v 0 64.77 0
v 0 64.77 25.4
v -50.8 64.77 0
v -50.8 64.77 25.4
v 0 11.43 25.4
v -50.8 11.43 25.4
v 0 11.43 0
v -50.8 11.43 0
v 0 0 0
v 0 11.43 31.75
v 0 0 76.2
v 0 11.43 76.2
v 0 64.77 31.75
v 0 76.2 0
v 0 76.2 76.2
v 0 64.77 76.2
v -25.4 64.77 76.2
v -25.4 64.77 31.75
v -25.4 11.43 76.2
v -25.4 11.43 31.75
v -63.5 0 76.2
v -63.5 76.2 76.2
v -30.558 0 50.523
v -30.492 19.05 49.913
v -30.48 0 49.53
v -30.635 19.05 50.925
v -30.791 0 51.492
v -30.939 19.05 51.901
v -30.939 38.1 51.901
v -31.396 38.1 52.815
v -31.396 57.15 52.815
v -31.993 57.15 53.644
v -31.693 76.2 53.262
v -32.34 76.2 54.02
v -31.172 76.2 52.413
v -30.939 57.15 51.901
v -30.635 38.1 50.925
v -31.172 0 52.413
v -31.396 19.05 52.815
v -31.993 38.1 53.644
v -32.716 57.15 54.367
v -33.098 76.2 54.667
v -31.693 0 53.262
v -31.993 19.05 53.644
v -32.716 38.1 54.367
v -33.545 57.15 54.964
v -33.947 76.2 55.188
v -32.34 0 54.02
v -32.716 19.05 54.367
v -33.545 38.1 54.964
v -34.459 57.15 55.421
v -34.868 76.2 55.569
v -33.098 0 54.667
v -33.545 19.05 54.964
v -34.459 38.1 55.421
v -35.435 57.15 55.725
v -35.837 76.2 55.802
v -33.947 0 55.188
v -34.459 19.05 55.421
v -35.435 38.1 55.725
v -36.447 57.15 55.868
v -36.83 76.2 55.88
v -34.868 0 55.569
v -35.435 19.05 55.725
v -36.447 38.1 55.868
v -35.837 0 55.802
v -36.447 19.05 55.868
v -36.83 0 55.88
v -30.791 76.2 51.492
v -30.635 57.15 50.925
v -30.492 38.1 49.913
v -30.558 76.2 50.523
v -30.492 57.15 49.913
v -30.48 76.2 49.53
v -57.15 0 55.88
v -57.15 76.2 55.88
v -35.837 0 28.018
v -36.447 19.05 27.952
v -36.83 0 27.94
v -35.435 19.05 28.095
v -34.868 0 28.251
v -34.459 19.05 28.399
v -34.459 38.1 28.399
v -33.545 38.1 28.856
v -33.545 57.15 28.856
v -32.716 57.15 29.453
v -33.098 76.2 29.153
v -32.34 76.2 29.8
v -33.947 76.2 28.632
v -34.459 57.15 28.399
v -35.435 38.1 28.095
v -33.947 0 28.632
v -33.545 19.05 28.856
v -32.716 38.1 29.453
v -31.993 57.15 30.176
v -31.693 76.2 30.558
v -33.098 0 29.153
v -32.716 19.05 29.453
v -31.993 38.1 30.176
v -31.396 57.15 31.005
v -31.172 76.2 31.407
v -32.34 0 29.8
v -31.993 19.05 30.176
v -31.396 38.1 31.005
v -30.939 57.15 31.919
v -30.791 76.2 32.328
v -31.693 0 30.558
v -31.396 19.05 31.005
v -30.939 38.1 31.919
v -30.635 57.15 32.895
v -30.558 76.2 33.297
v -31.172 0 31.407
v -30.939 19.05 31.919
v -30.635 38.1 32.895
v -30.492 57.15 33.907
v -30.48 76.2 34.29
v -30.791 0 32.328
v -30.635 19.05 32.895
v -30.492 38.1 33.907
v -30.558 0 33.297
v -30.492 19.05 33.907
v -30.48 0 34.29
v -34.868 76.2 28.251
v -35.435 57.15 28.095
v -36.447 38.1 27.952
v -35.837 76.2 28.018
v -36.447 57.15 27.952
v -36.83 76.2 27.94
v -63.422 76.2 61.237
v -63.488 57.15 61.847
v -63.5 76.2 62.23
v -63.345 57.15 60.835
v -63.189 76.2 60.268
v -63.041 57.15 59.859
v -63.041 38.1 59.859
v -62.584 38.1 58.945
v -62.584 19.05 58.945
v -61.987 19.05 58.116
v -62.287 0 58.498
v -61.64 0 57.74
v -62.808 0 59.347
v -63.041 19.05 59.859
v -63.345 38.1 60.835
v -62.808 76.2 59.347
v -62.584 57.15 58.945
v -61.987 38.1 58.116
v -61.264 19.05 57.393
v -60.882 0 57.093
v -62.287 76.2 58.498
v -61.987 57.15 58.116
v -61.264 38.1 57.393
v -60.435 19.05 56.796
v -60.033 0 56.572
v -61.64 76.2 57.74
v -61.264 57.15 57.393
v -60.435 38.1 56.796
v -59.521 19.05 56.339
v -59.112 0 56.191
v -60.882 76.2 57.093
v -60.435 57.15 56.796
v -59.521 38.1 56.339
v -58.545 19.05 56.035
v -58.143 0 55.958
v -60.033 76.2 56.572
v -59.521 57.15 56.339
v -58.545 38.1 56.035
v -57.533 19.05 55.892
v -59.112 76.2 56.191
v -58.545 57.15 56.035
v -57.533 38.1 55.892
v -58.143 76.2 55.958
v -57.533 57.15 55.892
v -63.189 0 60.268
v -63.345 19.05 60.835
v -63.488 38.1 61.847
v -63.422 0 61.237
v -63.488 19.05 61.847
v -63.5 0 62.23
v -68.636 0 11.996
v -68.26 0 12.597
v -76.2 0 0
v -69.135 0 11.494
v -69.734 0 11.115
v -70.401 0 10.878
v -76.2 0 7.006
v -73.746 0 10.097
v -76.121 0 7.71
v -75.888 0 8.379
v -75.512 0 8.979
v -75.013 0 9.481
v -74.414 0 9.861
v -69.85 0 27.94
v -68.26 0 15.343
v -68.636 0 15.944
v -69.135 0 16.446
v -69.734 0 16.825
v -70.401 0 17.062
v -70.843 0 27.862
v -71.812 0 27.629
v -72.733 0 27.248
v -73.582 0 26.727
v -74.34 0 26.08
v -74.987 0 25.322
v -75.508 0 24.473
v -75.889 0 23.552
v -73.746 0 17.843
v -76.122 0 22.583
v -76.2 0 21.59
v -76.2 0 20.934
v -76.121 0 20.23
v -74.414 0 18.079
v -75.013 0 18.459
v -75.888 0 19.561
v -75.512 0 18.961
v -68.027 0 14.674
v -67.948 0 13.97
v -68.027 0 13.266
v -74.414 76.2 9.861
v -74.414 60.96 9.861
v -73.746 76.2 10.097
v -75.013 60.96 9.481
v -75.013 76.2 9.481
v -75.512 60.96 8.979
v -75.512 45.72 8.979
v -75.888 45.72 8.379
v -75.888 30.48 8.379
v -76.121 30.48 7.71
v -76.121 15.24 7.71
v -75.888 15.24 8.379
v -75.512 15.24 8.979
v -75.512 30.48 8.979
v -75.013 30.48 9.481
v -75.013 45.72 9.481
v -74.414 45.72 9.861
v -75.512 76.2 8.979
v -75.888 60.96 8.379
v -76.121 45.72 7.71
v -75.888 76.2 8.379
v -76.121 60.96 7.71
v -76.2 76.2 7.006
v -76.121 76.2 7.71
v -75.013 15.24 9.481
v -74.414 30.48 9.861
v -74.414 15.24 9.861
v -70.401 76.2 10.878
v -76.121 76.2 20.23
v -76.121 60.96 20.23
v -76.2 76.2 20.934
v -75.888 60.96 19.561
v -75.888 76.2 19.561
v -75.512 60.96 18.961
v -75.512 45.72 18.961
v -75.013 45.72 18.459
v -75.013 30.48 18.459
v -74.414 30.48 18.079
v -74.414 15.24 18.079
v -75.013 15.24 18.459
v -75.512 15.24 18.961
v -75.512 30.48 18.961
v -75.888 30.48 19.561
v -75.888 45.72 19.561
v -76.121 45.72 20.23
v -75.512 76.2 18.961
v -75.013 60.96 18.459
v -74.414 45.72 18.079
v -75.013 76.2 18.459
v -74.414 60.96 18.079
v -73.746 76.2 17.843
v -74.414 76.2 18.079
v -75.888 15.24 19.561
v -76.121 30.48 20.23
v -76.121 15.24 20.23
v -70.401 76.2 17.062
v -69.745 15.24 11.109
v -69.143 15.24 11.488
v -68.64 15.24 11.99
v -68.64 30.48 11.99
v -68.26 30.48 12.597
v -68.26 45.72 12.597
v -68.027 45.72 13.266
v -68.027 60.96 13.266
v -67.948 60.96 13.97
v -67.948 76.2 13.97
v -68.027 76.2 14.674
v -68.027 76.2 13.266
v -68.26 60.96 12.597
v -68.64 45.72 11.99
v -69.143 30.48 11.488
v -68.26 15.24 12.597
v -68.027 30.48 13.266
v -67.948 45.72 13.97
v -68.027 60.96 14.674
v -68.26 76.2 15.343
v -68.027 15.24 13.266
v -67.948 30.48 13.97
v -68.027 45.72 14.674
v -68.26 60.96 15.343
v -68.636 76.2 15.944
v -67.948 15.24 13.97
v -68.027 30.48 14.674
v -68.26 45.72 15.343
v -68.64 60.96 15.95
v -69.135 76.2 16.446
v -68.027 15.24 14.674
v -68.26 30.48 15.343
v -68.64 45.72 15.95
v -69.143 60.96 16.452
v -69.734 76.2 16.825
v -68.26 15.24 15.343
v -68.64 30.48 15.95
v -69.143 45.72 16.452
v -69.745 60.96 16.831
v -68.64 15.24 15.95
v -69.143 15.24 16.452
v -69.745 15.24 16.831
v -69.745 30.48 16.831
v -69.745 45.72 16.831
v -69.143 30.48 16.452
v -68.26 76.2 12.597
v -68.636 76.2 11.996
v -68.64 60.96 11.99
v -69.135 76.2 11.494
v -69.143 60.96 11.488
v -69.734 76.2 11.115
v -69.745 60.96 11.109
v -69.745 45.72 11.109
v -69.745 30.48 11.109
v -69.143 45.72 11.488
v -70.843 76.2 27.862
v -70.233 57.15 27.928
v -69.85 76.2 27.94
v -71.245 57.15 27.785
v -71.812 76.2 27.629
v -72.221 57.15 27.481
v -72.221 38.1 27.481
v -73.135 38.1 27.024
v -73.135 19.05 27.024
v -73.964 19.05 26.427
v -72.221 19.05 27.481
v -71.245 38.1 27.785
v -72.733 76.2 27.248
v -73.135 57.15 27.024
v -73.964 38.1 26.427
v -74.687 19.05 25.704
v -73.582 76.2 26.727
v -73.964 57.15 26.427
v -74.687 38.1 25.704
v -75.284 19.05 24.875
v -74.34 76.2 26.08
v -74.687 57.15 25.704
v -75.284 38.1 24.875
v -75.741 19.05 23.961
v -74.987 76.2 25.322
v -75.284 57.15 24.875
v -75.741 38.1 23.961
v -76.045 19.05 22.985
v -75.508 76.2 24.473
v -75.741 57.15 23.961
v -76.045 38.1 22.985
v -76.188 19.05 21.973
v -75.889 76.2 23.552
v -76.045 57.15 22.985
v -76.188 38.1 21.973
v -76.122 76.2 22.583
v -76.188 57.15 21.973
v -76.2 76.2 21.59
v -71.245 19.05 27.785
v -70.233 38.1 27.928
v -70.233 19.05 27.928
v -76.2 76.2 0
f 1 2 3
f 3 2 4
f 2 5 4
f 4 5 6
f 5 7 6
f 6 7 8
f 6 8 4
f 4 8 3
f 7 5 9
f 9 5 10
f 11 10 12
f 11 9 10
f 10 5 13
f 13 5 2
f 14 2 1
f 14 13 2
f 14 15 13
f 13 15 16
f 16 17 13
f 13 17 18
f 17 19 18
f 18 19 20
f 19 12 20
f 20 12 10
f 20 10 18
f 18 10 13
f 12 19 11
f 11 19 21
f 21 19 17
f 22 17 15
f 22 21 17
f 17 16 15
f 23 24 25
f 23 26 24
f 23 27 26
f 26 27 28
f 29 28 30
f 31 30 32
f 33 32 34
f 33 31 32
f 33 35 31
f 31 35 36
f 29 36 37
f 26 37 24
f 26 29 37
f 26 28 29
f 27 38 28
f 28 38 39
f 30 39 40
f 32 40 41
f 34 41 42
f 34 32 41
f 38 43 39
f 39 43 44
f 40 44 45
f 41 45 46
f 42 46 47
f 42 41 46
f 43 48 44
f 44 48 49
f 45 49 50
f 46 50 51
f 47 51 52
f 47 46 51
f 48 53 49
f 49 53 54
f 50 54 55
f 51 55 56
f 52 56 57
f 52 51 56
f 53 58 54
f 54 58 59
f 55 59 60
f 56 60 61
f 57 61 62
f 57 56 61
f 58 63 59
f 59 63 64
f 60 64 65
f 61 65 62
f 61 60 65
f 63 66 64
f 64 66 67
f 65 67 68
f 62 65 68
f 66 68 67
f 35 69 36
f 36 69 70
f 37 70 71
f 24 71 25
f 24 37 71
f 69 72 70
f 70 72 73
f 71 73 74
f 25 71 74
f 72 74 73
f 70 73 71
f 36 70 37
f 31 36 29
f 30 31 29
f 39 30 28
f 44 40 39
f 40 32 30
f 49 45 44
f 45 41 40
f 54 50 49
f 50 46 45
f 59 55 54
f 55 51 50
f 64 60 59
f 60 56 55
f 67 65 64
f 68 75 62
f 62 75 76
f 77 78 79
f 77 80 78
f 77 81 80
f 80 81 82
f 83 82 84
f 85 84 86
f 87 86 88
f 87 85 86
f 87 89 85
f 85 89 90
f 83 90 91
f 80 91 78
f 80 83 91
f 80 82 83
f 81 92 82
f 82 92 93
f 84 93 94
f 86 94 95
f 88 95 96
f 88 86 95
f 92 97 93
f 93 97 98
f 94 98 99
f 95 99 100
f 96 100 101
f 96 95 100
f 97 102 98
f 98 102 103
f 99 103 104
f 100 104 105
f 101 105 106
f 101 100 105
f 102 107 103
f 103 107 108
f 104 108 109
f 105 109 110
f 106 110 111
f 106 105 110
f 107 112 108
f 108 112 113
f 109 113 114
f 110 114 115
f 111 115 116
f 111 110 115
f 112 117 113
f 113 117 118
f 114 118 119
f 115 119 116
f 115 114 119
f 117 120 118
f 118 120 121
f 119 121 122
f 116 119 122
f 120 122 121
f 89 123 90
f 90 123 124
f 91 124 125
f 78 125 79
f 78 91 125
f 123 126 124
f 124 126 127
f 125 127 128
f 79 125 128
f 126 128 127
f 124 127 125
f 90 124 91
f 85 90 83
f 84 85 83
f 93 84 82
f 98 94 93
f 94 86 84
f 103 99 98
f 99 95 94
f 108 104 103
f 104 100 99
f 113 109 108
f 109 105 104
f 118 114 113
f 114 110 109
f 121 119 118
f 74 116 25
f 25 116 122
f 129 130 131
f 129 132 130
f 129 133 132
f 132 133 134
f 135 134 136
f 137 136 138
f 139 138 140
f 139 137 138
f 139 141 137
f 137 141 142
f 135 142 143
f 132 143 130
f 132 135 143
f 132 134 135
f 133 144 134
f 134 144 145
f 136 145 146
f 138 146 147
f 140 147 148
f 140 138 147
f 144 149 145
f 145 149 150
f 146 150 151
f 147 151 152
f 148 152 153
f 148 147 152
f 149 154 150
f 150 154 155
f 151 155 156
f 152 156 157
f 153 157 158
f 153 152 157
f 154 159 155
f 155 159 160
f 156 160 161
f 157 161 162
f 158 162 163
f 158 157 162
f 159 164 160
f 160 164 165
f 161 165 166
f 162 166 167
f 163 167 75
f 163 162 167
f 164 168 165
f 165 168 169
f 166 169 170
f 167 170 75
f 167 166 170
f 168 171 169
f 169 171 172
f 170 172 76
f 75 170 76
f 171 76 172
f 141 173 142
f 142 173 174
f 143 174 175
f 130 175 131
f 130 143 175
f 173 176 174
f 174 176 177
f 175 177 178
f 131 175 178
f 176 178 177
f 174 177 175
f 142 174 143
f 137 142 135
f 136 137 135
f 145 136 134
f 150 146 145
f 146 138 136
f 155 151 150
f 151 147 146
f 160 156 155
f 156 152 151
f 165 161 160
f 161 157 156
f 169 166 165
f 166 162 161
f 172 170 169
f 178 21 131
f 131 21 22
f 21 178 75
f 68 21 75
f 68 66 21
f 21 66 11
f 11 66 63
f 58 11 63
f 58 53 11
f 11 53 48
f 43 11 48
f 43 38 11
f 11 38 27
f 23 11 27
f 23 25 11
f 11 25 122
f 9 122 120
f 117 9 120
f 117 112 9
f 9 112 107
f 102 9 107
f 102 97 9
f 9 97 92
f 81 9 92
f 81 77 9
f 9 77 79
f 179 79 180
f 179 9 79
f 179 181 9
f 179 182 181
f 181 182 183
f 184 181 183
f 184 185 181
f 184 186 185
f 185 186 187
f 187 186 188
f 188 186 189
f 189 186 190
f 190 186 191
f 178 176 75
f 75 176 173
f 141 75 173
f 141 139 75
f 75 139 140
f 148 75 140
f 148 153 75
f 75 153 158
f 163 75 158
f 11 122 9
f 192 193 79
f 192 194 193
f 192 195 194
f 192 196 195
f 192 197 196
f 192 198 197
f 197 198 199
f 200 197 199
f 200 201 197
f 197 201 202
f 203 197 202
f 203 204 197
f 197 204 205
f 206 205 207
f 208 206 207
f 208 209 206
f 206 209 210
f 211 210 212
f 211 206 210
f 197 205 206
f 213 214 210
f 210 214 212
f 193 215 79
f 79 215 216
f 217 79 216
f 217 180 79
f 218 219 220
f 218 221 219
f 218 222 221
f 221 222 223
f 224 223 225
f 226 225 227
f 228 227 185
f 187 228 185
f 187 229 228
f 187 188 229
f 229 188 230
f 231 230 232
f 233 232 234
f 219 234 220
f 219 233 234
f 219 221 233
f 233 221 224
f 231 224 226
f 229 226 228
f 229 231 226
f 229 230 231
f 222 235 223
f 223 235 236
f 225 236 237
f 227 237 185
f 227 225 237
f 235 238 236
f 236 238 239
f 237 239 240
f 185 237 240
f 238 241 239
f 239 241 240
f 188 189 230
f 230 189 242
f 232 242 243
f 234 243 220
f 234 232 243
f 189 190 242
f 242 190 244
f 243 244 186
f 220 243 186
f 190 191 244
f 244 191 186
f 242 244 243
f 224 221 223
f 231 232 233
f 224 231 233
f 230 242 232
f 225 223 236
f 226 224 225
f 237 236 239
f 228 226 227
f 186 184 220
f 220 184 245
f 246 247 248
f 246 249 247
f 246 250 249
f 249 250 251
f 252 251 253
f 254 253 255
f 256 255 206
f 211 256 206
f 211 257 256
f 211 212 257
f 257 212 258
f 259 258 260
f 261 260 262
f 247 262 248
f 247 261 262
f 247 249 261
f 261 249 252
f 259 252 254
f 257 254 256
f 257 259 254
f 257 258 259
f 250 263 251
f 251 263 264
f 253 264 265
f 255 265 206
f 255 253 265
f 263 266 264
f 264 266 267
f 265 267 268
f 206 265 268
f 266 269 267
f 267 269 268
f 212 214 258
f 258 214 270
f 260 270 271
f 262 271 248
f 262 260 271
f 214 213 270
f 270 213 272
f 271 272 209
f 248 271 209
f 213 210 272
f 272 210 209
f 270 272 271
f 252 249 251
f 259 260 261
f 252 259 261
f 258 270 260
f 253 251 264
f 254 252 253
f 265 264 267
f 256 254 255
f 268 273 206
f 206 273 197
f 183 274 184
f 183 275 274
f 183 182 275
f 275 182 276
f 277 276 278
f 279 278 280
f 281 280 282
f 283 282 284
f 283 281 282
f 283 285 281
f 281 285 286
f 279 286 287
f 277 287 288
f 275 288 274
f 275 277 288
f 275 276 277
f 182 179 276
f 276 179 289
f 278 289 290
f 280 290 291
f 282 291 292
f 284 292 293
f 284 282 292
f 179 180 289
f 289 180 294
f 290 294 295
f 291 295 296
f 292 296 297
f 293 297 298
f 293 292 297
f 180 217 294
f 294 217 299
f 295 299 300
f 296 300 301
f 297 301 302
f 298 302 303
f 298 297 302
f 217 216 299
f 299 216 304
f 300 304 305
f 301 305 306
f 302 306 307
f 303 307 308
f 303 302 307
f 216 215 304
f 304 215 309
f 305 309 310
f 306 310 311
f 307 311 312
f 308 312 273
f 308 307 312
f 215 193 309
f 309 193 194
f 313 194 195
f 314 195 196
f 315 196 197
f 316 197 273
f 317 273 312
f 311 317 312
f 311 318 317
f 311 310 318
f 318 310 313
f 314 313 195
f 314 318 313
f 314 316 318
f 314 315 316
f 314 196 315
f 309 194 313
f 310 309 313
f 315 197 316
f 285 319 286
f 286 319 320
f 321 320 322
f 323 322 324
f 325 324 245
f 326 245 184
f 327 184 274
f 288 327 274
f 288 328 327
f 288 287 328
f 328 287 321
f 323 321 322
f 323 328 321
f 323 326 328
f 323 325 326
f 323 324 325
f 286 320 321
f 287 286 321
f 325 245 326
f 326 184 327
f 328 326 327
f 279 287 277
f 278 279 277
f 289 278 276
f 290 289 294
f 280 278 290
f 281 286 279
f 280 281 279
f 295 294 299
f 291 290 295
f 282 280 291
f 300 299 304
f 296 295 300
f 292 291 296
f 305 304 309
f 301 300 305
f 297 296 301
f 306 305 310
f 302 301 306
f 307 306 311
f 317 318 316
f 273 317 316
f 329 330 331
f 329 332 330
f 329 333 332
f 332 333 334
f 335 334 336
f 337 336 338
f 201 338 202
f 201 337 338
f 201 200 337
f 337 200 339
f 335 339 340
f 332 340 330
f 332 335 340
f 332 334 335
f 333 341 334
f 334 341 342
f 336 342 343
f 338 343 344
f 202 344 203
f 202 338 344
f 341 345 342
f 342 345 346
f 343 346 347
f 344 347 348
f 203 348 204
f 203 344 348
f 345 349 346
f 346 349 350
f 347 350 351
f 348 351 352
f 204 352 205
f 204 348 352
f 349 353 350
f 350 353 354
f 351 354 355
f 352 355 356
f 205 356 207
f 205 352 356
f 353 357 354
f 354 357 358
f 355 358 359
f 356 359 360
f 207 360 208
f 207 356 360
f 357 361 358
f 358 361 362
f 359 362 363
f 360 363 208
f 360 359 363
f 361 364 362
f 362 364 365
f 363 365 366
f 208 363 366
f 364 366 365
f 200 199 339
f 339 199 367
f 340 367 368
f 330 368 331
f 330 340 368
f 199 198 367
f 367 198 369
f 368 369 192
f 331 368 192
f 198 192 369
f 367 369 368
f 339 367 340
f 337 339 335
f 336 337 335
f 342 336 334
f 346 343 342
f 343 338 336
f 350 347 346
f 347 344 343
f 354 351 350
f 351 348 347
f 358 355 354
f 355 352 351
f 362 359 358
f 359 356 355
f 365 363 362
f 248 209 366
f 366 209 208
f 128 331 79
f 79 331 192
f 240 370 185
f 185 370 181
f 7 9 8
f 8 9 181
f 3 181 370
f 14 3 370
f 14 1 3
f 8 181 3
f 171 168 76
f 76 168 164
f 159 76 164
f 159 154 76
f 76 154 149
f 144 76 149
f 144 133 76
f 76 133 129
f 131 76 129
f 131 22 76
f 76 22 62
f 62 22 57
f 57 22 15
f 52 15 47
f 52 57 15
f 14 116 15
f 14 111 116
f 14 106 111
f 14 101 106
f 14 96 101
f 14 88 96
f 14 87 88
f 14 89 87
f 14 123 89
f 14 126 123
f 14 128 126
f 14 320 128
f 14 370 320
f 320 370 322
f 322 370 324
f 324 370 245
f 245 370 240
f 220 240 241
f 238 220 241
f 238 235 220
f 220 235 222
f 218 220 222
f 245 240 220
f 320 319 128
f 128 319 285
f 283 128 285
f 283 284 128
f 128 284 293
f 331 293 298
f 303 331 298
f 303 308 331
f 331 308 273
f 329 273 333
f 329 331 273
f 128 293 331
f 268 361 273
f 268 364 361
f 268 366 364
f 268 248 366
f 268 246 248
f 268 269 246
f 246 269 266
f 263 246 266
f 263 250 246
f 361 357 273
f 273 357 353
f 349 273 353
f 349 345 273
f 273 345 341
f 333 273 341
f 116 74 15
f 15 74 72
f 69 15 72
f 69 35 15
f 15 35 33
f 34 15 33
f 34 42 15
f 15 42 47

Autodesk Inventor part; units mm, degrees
ref_plane "YZ Plane" through (0, 0, 0) normal (1, 0, 0) x (0, 1, 0)
ref_plane "XZ Plane" through (0, 0, 0) normal (0, 1, 0) x (-1, 0, 0)
ref_plane "XY Plane" through (0, 0, 0) normal (0, 0, 1) x (1, 0, 0)
sketch "Sketch1" plane through (0, 0, 0) normal (0, 1, 0) x (-1, 0, 0)
  line L0 (0, 0) -> (0, 76.2)
  line L1 (0, 0) -> (76.2, 0)
  line L2 (30.48, 27.94) -> (76.2, 27.94)
  line L3 (76.2, 27.94) -> (76.2, 18.415)
  line L4 (76.2, 0) -> (76.2, 9.525)
  line L5 (76.2, 18.415) -> (57.15, 13.97)
  line L6 (57.15, 13.97) -> (76.2, 9.525)
  line L7 (63.5, 76.2) -> (63.5, 55.88)
  line L8 (63.5, 55.88) -> (30.48, 55.88)
  line L9 (30.48, 55.88) -> (30.48, 27.94)
  line L10 (63.5, 76.2) -> (0, 76.2)
  dimension "d4" = 9.525
  dimension "d6" = 19.05
  dimension "d35" = 76.2
  dimension "d37" = 27.94
  dimension "d38" = 76.2
  dimension "d39" = 63.5
  dimension "d40" = 27.94
  dimension "d41" = 30.48
extrude "Extrusion1" add sketch "Sketch1" along normal blind 76.2
fillet "Fillet1" radius 6.35 1 edges at (-76.2, 38.1, 27.94)
fillet "Fillet2" radius 3.175 1 edges at (-57.15, 38.1, 13.97)
fillet "Fillet3" radius 3.175 1 edges at (-76.2, 38.1, 18.415)
fillet "Fillet4" radius 3.175 1 edges at (-76.2, 38.1, 9.525)
fillet "Fillet5" radius 6.35 1 edges at (-63.5, 38.1, 55.88)
fillet "Fillet6" radius 6.35 1 edges at (-30.48, 38.1, 27.94)
fillet "Fillet7" radius 6.35 1 edges at (-30.48, 38.1, 55.88)
sketch "Sketch4" plane through (-63.5, 0, 76.2) normal (0, 0, 1) x (1, 0, 0)
  line L0 (63.5, 11.43) -> (38.1, 11.43)
  line L1 (38.1, 11.43) -> (38.1, 64.77)
  line L2 (38.1, 64.77) -> (63.5, 64.77)
  line L3 (63.5, 64.77) -> (63.5, 11.43)
  line L4 (63.5, 0) -> (0, 0) projected
  line L5 (63.5, 76.2) -> (0, 76.2) construction
  line L6 (63.5, 0) -> (63.5, 76.2) projected
  dimension "d42" = 53.34
  dimension "d43" = 25.4
  dimension "d44" = 11.43
  dimension "d45" = 0
extrude "Extrusion4" cut sketch "Sketch4" against normal blind 44.45
sketch "Sketch5" plane through (0, 0, 76.2) normal (1, 0, 0) x (0, 0, -1)
  line L0 (76.2, 11.43) -> (50.8, 11.43)
  line L1 (50.8, 11.43) -> (50.8, 64.77)
  line L2 (50.8, 64.77) -> (76.2, 64.77)
  line L3 (76.2, 64.77) -> (76.2, 11.43)
  line L4 (76.2, 0) -> (76.2, 76.2) projected
  line L5 (0, 76.2) -> (76.2, 76.2) projected
  dimension "d48" = 53.34
  dimension "d49" = 25.4
  dimension "d50" = 0
  dimension "d51" = 11.43
extrude "Extrusion5" cut sketch "Sketch5" against normal blind 50.8
properties part number "Hook2"
